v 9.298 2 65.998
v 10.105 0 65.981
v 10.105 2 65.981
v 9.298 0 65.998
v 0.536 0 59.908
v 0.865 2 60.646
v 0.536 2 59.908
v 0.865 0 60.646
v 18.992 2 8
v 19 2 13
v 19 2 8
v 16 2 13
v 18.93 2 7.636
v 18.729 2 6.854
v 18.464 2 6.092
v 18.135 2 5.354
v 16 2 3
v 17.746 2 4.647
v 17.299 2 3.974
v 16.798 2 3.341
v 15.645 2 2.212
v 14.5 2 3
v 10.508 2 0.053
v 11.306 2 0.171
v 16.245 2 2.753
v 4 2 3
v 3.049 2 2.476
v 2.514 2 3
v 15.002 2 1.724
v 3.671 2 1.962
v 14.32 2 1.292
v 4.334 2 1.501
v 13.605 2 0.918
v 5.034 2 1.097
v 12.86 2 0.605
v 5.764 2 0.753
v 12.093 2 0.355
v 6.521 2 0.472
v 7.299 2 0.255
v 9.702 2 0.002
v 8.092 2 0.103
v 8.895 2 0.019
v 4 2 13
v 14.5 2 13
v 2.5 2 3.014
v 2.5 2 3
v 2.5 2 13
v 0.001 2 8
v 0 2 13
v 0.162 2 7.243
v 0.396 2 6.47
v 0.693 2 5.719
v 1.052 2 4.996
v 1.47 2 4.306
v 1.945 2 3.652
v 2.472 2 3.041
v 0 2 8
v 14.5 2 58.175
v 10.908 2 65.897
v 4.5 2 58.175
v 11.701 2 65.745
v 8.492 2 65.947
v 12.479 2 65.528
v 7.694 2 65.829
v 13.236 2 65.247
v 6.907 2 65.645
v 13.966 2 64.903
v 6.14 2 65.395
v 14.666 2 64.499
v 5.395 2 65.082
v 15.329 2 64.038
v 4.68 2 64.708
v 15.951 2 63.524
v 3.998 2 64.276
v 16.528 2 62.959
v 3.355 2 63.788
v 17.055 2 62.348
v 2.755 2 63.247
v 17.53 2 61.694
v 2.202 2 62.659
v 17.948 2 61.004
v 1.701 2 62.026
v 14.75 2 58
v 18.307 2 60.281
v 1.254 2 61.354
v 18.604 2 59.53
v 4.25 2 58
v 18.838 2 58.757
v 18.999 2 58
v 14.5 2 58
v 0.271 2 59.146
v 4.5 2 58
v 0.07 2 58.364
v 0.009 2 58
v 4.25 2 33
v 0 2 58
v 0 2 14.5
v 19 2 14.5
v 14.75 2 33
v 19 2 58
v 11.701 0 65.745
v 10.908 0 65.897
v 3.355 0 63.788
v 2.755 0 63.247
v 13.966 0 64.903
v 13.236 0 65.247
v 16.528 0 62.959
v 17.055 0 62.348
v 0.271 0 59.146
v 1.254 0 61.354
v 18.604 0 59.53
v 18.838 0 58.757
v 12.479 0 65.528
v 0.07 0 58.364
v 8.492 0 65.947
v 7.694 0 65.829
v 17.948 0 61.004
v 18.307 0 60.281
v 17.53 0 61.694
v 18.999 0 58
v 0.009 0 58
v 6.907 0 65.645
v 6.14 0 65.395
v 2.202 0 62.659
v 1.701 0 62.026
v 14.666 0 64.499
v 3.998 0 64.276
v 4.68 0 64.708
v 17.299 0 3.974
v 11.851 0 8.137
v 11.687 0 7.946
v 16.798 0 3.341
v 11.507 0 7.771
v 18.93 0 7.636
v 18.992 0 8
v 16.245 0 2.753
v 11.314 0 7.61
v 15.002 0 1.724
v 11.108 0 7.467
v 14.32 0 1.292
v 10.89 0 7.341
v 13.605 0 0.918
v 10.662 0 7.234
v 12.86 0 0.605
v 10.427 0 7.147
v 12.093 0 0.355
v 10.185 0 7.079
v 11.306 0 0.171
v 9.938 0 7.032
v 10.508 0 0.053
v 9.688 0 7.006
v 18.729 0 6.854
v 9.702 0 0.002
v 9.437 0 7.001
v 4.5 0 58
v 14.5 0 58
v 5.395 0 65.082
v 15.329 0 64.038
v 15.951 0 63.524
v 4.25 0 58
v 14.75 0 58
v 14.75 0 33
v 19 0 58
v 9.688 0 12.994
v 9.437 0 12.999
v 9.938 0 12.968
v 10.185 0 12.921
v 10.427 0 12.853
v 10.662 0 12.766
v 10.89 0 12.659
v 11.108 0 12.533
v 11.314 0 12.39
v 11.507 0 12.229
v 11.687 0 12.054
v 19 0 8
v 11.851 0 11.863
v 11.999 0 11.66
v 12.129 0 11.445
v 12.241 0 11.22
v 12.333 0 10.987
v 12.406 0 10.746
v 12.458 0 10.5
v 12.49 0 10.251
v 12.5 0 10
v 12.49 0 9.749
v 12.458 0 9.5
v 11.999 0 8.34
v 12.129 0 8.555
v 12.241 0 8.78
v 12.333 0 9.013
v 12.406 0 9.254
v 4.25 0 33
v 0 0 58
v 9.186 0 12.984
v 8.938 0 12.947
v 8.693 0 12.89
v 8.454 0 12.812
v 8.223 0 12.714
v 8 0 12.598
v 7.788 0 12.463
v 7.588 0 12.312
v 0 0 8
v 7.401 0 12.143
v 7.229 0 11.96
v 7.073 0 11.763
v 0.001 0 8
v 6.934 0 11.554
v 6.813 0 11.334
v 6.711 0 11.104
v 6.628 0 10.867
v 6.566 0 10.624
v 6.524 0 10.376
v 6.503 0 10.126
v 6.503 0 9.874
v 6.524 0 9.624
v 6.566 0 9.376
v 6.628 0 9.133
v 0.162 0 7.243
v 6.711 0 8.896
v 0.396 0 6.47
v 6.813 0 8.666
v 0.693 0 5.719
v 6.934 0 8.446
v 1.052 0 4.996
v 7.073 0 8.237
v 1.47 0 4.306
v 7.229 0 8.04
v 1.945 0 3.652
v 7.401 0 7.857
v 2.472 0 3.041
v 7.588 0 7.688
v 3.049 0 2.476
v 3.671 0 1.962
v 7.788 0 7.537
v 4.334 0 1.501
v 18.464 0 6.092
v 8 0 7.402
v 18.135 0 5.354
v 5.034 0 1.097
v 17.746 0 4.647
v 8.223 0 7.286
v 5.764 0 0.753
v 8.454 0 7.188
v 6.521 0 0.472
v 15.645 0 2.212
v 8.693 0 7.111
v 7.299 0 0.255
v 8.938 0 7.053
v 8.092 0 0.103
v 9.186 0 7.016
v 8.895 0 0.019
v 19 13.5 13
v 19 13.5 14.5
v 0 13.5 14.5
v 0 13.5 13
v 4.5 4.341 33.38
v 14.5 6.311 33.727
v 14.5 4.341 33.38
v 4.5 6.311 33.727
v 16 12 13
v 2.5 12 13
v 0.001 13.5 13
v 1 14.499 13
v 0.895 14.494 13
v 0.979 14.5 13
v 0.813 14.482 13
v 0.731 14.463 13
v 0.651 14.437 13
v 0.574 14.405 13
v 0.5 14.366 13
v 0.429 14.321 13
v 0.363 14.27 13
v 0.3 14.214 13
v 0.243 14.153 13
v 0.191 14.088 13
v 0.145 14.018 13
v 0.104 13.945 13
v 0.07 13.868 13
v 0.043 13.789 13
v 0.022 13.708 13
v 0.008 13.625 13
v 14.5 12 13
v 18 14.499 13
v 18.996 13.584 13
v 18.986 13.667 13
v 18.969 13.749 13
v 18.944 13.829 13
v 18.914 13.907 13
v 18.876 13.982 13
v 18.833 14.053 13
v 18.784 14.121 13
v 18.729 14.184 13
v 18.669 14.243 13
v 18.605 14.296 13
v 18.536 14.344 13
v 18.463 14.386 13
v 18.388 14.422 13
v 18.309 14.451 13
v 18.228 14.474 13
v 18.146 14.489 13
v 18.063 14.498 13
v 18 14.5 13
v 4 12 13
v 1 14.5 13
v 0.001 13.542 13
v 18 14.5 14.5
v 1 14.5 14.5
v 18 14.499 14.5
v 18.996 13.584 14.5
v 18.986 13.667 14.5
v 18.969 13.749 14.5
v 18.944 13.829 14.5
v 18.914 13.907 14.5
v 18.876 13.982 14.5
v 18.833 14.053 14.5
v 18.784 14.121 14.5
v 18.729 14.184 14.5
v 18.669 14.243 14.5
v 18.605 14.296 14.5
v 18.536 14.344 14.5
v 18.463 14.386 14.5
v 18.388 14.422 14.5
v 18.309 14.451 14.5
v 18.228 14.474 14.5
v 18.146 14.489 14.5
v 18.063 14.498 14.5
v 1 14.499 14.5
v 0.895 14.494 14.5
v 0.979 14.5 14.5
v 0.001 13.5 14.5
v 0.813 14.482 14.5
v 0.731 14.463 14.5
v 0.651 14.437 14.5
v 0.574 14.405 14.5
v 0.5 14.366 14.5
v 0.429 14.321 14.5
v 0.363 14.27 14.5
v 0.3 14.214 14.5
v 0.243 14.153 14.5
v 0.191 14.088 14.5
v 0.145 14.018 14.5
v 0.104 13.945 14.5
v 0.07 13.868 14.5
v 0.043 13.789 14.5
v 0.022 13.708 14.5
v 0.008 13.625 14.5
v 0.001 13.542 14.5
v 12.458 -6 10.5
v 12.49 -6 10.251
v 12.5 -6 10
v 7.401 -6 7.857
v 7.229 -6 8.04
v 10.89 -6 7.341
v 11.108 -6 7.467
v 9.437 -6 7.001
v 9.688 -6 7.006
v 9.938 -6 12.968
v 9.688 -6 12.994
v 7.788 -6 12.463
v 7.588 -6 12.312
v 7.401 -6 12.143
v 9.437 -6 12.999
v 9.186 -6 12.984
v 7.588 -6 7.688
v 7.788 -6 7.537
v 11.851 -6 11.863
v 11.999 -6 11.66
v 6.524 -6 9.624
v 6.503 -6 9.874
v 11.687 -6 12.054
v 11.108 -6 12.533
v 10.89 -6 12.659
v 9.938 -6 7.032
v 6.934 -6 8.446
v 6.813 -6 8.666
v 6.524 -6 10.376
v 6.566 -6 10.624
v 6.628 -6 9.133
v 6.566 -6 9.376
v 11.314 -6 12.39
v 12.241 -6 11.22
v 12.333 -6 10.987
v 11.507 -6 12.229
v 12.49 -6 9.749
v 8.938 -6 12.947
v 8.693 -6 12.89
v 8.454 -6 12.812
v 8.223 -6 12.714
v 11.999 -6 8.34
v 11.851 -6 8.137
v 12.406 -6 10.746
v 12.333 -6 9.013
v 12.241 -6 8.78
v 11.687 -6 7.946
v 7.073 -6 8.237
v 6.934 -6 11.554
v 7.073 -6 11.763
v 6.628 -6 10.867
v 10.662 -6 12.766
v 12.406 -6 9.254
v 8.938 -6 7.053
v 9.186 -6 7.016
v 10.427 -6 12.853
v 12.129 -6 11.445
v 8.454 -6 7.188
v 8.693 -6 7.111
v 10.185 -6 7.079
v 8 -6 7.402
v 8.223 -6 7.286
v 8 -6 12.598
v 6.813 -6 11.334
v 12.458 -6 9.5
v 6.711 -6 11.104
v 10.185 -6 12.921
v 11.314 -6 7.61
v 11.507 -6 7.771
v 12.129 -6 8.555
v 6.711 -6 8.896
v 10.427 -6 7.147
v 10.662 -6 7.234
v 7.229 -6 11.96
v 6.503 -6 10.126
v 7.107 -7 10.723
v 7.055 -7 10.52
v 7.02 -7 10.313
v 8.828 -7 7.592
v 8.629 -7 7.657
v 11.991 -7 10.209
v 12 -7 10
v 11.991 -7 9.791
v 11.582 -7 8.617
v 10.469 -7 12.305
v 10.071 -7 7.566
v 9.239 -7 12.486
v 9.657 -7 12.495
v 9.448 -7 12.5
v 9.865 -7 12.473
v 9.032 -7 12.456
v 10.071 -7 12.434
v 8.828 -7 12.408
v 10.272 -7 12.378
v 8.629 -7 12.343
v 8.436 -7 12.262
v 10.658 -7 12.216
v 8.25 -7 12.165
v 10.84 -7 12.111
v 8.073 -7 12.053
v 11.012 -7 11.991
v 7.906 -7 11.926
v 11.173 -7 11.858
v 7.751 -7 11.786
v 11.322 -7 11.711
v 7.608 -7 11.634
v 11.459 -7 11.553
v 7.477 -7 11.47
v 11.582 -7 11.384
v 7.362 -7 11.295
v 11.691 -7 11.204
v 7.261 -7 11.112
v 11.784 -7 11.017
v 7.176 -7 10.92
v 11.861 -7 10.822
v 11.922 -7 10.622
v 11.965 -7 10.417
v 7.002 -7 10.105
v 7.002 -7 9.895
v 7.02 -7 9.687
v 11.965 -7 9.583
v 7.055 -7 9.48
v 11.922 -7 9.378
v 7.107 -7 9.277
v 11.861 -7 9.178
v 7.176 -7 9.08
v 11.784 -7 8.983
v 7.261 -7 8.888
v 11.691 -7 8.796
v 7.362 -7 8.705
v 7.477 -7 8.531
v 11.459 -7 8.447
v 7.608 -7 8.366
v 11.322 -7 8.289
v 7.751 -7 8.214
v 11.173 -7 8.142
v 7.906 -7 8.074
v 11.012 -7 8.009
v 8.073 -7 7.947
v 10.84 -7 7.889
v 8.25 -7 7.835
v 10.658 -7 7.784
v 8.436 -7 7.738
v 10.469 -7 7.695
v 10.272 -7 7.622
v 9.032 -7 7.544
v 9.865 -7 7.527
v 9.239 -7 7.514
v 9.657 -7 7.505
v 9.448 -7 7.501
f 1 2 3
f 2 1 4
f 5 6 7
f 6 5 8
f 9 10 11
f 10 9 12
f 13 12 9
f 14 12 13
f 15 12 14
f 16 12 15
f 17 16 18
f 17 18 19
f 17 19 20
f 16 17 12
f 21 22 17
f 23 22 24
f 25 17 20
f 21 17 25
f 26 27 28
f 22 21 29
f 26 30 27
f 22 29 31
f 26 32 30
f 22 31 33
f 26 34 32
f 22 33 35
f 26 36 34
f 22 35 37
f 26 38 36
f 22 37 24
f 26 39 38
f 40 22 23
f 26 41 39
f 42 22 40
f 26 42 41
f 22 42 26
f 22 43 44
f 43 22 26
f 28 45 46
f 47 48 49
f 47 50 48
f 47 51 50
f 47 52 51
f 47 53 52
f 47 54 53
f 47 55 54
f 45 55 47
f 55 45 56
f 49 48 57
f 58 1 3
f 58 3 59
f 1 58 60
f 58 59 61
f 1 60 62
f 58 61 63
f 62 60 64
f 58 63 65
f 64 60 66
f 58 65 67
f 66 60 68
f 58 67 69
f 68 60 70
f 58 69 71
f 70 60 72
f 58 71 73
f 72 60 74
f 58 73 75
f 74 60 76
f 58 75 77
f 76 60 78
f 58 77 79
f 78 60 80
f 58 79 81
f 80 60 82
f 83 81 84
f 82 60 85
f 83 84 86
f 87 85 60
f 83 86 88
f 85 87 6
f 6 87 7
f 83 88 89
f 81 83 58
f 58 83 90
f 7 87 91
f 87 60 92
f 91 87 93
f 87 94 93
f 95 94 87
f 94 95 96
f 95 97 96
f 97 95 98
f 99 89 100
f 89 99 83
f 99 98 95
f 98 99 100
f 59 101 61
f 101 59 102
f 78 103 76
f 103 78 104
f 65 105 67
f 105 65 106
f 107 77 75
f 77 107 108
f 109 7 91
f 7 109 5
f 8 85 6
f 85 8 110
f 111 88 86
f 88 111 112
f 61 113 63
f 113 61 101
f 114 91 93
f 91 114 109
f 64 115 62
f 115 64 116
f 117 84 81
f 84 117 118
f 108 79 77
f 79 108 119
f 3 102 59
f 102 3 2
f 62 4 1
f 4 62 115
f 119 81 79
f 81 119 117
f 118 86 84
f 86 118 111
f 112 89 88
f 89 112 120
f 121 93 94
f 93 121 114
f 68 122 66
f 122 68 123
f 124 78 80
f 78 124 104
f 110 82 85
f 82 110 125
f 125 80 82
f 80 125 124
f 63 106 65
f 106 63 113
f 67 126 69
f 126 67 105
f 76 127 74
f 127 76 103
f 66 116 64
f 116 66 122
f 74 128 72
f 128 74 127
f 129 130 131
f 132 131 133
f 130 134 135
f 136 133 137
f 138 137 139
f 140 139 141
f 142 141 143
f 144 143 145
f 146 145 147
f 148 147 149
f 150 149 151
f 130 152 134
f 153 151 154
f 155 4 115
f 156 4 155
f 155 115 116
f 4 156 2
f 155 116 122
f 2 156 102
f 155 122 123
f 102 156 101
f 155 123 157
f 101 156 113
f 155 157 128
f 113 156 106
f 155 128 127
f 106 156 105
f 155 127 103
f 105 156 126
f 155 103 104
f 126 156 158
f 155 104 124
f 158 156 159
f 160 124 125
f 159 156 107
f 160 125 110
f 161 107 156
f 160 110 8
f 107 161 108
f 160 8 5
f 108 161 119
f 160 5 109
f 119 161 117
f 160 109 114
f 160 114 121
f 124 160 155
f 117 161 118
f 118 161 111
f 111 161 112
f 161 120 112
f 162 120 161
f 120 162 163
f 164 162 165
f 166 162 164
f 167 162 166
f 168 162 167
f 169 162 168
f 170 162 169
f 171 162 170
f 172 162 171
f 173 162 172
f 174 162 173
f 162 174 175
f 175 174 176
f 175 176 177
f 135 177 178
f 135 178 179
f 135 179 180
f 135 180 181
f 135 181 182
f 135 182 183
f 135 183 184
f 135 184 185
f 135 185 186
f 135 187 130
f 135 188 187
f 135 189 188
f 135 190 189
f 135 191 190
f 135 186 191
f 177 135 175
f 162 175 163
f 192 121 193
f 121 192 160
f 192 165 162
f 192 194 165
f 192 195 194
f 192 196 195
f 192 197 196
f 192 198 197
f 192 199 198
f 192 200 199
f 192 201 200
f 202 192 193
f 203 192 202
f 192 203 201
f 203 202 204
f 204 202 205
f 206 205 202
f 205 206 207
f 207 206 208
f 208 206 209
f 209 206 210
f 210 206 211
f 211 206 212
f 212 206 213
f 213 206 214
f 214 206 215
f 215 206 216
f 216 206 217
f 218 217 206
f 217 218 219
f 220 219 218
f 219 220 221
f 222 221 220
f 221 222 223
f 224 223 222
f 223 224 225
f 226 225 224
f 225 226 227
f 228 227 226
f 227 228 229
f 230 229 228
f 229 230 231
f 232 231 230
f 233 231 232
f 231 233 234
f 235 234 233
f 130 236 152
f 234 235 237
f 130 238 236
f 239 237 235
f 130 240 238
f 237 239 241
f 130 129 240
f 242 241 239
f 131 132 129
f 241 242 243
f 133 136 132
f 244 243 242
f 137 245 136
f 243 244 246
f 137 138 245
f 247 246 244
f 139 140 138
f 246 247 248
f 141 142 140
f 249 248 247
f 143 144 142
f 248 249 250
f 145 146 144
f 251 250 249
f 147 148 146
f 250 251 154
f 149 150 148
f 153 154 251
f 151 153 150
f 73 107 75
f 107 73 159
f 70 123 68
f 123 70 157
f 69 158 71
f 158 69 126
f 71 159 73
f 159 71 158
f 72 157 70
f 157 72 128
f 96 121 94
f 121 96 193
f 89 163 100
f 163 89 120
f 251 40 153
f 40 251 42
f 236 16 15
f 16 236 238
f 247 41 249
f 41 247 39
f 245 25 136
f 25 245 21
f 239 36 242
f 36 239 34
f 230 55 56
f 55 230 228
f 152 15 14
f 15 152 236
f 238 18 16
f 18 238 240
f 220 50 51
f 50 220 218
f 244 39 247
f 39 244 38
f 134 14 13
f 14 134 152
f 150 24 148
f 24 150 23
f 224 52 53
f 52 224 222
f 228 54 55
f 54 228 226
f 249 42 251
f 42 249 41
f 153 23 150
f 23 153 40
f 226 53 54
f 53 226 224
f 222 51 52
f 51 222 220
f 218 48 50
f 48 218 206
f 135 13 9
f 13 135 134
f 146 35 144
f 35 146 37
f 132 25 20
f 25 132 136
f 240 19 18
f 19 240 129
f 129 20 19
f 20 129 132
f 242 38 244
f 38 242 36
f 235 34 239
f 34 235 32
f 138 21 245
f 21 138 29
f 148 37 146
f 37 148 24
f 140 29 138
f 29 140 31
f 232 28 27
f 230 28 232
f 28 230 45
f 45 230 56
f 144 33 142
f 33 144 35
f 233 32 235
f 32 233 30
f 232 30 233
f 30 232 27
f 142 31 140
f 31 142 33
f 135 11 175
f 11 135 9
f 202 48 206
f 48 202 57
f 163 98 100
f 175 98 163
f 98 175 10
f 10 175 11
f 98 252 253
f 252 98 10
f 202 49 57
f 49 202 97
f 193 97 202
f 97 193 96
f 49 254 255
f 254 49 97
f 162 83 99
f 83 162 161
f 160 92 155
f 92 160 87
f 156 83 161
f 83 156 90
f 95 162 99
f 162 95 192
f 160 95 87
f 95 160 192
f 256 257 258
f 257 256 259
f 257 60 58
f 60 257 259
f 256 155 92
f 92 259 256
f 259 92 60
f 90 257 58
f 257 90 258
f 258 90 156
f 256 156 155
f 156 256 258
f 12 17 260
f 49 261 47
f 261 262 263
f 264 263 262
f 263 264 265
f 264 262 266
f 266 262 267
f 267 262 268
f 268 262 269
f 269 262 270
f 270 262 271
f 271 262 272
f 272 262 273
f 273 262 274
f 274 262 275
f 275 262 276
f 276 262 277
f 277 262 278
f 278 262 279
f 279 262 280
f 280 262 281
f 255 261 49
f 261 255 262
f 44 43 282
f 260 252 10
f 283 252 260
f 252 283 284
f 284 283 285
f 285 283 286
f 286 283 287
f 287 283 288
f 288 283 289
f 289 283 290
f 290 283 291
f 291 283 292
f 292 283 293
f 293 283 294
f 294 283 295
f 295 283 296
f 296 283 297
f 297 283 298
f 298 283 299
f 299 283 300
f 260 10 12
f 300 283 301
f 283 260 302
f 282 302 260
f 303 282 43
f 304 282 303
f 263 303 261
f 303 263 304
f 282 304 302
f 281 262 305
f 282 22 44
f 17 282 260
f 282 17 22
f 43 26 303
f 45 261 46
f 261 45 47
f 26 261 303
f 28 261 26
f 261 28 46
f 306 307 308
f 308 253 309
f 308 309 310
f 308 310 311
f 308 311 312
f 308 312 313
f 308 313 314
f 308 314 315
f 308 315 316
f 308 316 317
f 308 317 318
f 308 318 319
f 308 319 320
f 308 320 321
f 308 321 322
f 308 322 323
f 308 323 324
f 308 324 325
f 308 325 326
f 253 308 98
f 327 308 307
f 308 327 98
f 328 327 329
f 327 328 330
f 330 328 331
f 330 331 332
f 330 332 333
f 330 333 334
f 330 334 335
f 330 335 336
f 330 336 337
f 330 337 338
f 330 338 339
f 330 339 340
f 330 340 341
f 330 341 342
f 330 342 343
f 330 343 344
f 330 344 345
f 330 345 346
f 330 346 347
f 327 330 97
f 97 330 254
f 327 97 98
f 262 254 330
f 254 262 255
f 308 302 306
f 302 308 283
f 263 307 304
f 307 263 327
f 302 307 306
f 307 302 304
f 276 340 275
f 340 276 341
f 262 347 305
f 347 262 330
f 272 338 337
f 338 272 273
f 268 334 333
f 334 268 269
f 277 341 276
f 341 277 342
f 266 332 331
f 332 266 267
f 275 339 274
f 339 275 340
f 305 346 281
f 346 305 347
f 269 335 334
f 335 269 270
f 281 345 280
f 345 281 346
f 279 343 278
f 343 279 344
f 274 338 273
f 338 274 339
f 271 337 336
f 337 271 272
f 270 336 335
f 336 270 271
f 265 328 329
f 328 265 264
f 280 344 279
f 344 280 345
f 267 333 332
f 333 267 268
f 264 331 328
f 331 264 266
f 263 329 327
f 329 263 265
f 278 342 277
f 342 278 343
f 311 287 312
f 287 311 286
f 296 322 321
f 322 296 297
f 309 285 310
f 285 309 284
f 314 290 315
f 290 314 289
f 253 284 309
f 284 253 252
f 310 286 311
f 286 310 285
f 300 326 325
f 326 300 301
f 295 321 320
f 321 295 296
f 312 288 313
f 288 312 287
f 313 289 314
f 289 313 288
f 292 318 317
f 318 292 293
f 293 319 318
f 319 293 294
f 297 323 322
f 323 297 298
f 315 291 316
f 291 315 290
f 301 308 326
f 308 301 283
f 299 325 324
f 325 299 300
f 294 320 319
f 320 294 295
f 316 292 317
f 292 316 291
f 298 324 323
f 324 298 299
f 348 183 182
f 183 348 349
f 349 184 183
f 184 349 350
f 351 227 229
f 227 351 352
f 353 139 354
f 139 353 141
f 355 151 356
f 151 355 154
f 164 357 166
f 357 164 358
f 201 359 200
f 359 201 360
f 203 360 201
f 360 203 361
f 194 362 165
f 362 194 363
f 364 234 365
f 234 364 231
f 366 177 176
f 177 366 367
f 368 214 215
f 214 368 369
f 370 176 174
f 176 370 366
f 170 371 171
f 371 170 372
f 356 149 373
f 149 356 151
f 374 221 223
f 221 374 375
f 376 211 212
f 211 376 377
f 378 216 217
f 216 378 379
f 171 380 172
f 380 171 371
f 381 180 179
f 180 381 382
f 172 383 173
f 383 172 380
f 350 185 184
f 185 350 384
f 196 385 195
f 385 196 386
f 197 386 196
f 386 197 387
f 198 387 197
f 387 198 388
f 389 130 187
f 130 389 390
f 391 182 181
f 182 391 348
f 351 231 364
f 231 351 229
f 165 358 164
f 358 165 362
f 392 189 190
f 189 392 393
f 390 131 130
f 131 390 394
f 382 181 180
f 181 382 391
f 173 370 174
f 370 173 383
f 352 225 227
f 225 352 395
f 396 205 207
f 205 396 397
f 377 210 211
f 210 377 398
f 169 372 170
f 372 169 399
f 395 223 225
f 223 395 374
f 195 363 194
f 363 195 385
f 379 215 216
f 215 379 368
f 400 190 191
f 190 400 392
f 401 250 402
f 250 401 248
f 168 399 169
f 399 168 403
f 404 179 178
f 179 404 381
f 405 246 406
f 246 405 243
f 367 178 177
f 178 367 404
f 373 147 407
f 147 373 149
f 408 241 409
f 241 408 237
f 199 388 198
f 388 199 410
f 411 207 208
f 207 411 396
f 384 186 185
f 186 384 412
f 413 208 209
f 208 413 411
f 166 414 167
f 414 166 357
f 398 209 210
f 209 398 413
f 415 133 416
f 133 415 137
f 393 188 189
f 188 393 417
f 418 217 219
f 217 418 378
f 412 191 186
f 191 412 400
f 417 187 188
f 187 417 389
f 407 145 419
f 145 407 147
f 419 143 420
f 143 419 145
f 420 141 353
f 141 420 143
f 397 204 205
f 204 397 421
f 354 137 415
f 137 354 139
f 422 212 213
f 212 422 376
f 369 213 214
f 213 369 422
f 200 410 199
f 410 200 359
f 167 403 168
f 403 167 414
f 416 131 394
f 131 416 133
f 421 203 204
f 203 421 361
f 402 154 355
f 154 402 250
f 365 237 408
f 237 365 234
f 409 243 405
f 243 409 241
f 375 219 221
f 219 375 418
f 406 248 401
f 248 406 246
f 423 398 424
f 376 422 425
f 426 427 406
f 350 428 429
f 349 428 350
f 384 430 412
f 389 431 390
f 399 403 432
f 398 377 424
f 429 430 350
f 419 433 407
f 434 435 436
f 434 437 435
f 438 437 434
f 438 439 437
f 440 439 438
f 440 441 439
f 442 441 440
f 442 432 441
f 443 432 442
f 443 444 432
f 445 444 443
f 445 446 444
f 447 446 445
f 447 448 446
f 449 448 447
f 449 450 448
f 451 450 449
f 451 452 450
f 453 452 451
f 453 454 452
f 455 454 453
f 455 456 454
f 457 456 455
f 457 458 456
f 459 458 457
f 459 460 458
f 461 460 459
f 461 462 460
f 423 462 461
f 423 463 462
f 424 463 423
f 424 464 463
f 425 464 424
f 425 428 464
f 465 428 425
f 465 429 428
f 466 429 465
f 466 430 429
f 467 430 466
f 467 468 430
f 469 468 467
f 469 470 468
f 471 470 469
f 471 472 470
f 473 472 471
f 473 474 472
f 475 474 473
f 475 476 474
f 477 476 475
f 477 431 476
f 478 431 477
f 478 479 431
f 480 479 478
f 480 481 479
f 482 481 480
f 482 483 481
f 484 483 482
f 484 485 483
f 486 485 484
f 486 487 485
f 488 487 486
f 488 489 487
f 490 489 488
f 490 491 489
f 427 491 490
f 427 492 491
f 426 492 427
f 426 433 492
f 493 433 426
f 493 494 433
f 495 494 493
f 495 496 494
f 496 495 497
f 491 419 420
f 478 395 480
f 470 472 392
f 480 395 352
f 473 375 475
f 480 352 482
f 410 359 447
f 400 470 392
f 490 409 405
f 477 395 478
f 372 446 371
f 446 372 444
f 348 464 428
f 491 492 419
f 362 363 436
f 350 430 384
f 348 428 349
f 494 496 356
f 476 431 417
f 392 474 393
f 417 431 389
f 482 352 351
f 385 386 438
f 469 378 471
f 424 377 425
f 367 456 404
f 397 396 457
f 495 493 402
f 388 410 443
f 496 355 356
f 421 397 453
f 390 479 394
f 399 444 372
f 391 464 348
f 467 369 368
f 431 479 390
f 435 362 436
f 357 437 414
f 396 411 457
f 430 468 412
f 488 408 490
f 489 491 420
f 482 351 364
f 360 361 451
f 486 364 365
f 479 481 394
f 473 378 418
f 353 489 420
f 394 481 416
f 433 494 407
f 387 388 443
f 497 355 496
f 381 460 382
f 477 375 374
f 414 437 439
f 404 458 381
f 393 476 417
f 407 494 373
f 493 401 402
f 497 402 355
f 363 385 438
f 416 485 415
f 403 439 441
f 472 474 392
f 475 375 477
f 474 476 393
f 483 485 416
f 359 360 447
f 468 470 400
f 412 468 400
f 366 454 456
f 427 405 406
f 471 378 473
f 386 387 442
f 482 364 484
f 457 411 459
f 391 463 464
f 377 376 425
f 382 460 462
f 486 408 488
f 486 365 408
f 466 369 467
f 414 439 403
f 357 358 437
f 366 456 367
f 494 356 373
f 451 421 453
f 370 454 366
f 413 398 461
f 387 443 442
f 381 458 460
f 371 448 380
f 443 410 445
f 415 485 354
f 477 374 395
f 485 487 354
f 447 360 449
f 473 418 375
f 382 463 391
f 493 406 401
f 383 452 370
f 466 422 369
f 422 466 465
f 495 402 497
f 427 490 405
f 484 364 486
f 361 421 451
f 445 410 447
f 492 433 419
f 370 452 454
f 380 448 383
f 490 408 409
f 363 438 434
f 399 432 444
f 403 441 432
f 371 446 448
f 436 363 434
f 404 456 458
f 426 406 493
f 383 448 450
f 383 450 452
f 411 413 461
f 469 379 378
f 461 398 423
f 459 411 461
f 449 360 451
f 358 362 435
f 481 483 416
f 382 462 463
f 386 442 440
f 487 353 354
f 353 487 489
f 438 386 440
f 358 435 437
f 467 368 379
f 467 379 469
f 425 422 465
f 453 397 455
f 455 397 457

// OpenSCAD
/* [Body] */
bodyThickness = 2;
bodyLength = 50;
bodyWidth = 19;
bodyRoundHeight = 8;
bodyRoundDiameter = pow(bodyWidth, 2) / (4*bodyRoundHeight) + bodyRoundHeight;

/* [Shelf] */
shelfThickness = 1.5;
shelfDepth = 12.5;
shelfSupportThickness = 1;
shelfSupportHeight = 10;
shelfSupportDepth = 10;
shelfInset = 3;
shelfRoundRadius = 1;

/* [Retention Tab] */
tabWidth = 10;
tabHeight = 25;
tabAngle = 10;

/* [Peg] */
pegDiameter = 6;
pegLength = 7;

/* [Hidden] */
$fn = 75;

module bodyRound() {
  rotate([-90, 0, 0])
  translate([bodyWidth/2, bodyRoundDiameter/2 - bodyRoundHeight, 0])
  difference() {
    cylinder(h = bodyThickness, d = bodyRoundDiameter);
    translate([0, bodyRoundHeight, 1])
      cube([
        bodyRoundDiameter + 2,
        bodyRoundDiameter,
        bodyThickness + 2
      ], center = true);
  }
}

module tab() {
  translate([
    (bodyWidth - tabWidth) / 2,
    0,
    bodyLength + bodyRoundHeight
  ])
  rotate([tabAngle, 0, 0])
  translate([0, 0, -tabHeight])
  cube([tabWidth, bodyThickness, tabHeight]);
}

module body() {
  union() {
    difference() {
      union() {
        translate([0, 0, bodyLength+bodyRoundHeight]) bodyRound();
        translate([bodyWidth, 0, bodyRoundHeight])
          rotate([0, 180, 0]) bodyRound();
        translate([0, 0, bodyRoundHeight])
          cube([bodyWidth, bodyThickness, bodyLength]);
      }
      // tab hole
      translate([
        (bodyWidth - tabWidth - 0.5)/2,
        -1,
        bodyLength + bodyRoundHeight - tabHeight
      ]) cube([tabWidth + 0.5, bodyThickness+2, tabHeight]);
    }
    tab();
  }
}

module shelfSupport() {
  translate([0, 0, -shelfSupportHeight])
  rotate([0, -90, 0])
  linear_extrude(height = shelfThickness)
  polygon([
    [0, 0],
    [shelfSupportDepth, 0],
    [shelfSupportDepth, shelfSupportHeight]
  ]);
}

module shelf() {
  translate([0, bodyThickness, shelfSupportHeight + 3])
  union() {
    translate([bodyWidth-shelfInset, 0, 0])
      shelfSupport();
    translate([shelfSupportThickness+shelfInset, 0, 0])
      shelfSupport();
    
    // the shelf itself
    // main part
    cube([bodyWidth, shelfDepth - shelfRoundRadius, shelfThickness]);
    // extra bit between the rounds
    translate([shelfRoundRadius, shelfDepth - shelfRoundRadius, 0])
      cube([
        bodyWidth - shelfRoundRadius * 2,
        shelfRoundRadius,
        shelfThickness
      ]);
    // right round (baby)
    translate([shelfRoundRadius, shelfDepth - shelfRoundRadius, 0])
      cylinder(h = shelfThickness, r = shelfRoundRadius);
    // left round
    translate([bodyWidth - shelfRoundRadius, shelfDepth - shelfRoundRadius, 0])
      cylinder(h = shelfThickness, r = shelfRoundRadius);
  }
}

module peg() {
  translate([
    bodyWidth / 2,
    0,
    shelfSupportHeight + 3 - pegDiameter / 2
  ])
  rotate([90, 0, 0])
  union() {
    cylinder(h = pegLength - 1, d = pegDiameter);
    translate([0, 0, pegLength - 1])
      cylinder(h = 1, d1 = pegDiameter, d2 = pegDiameter - 1);
  }
}

// TODO: add retention tab
body();
shelf();
peg();
